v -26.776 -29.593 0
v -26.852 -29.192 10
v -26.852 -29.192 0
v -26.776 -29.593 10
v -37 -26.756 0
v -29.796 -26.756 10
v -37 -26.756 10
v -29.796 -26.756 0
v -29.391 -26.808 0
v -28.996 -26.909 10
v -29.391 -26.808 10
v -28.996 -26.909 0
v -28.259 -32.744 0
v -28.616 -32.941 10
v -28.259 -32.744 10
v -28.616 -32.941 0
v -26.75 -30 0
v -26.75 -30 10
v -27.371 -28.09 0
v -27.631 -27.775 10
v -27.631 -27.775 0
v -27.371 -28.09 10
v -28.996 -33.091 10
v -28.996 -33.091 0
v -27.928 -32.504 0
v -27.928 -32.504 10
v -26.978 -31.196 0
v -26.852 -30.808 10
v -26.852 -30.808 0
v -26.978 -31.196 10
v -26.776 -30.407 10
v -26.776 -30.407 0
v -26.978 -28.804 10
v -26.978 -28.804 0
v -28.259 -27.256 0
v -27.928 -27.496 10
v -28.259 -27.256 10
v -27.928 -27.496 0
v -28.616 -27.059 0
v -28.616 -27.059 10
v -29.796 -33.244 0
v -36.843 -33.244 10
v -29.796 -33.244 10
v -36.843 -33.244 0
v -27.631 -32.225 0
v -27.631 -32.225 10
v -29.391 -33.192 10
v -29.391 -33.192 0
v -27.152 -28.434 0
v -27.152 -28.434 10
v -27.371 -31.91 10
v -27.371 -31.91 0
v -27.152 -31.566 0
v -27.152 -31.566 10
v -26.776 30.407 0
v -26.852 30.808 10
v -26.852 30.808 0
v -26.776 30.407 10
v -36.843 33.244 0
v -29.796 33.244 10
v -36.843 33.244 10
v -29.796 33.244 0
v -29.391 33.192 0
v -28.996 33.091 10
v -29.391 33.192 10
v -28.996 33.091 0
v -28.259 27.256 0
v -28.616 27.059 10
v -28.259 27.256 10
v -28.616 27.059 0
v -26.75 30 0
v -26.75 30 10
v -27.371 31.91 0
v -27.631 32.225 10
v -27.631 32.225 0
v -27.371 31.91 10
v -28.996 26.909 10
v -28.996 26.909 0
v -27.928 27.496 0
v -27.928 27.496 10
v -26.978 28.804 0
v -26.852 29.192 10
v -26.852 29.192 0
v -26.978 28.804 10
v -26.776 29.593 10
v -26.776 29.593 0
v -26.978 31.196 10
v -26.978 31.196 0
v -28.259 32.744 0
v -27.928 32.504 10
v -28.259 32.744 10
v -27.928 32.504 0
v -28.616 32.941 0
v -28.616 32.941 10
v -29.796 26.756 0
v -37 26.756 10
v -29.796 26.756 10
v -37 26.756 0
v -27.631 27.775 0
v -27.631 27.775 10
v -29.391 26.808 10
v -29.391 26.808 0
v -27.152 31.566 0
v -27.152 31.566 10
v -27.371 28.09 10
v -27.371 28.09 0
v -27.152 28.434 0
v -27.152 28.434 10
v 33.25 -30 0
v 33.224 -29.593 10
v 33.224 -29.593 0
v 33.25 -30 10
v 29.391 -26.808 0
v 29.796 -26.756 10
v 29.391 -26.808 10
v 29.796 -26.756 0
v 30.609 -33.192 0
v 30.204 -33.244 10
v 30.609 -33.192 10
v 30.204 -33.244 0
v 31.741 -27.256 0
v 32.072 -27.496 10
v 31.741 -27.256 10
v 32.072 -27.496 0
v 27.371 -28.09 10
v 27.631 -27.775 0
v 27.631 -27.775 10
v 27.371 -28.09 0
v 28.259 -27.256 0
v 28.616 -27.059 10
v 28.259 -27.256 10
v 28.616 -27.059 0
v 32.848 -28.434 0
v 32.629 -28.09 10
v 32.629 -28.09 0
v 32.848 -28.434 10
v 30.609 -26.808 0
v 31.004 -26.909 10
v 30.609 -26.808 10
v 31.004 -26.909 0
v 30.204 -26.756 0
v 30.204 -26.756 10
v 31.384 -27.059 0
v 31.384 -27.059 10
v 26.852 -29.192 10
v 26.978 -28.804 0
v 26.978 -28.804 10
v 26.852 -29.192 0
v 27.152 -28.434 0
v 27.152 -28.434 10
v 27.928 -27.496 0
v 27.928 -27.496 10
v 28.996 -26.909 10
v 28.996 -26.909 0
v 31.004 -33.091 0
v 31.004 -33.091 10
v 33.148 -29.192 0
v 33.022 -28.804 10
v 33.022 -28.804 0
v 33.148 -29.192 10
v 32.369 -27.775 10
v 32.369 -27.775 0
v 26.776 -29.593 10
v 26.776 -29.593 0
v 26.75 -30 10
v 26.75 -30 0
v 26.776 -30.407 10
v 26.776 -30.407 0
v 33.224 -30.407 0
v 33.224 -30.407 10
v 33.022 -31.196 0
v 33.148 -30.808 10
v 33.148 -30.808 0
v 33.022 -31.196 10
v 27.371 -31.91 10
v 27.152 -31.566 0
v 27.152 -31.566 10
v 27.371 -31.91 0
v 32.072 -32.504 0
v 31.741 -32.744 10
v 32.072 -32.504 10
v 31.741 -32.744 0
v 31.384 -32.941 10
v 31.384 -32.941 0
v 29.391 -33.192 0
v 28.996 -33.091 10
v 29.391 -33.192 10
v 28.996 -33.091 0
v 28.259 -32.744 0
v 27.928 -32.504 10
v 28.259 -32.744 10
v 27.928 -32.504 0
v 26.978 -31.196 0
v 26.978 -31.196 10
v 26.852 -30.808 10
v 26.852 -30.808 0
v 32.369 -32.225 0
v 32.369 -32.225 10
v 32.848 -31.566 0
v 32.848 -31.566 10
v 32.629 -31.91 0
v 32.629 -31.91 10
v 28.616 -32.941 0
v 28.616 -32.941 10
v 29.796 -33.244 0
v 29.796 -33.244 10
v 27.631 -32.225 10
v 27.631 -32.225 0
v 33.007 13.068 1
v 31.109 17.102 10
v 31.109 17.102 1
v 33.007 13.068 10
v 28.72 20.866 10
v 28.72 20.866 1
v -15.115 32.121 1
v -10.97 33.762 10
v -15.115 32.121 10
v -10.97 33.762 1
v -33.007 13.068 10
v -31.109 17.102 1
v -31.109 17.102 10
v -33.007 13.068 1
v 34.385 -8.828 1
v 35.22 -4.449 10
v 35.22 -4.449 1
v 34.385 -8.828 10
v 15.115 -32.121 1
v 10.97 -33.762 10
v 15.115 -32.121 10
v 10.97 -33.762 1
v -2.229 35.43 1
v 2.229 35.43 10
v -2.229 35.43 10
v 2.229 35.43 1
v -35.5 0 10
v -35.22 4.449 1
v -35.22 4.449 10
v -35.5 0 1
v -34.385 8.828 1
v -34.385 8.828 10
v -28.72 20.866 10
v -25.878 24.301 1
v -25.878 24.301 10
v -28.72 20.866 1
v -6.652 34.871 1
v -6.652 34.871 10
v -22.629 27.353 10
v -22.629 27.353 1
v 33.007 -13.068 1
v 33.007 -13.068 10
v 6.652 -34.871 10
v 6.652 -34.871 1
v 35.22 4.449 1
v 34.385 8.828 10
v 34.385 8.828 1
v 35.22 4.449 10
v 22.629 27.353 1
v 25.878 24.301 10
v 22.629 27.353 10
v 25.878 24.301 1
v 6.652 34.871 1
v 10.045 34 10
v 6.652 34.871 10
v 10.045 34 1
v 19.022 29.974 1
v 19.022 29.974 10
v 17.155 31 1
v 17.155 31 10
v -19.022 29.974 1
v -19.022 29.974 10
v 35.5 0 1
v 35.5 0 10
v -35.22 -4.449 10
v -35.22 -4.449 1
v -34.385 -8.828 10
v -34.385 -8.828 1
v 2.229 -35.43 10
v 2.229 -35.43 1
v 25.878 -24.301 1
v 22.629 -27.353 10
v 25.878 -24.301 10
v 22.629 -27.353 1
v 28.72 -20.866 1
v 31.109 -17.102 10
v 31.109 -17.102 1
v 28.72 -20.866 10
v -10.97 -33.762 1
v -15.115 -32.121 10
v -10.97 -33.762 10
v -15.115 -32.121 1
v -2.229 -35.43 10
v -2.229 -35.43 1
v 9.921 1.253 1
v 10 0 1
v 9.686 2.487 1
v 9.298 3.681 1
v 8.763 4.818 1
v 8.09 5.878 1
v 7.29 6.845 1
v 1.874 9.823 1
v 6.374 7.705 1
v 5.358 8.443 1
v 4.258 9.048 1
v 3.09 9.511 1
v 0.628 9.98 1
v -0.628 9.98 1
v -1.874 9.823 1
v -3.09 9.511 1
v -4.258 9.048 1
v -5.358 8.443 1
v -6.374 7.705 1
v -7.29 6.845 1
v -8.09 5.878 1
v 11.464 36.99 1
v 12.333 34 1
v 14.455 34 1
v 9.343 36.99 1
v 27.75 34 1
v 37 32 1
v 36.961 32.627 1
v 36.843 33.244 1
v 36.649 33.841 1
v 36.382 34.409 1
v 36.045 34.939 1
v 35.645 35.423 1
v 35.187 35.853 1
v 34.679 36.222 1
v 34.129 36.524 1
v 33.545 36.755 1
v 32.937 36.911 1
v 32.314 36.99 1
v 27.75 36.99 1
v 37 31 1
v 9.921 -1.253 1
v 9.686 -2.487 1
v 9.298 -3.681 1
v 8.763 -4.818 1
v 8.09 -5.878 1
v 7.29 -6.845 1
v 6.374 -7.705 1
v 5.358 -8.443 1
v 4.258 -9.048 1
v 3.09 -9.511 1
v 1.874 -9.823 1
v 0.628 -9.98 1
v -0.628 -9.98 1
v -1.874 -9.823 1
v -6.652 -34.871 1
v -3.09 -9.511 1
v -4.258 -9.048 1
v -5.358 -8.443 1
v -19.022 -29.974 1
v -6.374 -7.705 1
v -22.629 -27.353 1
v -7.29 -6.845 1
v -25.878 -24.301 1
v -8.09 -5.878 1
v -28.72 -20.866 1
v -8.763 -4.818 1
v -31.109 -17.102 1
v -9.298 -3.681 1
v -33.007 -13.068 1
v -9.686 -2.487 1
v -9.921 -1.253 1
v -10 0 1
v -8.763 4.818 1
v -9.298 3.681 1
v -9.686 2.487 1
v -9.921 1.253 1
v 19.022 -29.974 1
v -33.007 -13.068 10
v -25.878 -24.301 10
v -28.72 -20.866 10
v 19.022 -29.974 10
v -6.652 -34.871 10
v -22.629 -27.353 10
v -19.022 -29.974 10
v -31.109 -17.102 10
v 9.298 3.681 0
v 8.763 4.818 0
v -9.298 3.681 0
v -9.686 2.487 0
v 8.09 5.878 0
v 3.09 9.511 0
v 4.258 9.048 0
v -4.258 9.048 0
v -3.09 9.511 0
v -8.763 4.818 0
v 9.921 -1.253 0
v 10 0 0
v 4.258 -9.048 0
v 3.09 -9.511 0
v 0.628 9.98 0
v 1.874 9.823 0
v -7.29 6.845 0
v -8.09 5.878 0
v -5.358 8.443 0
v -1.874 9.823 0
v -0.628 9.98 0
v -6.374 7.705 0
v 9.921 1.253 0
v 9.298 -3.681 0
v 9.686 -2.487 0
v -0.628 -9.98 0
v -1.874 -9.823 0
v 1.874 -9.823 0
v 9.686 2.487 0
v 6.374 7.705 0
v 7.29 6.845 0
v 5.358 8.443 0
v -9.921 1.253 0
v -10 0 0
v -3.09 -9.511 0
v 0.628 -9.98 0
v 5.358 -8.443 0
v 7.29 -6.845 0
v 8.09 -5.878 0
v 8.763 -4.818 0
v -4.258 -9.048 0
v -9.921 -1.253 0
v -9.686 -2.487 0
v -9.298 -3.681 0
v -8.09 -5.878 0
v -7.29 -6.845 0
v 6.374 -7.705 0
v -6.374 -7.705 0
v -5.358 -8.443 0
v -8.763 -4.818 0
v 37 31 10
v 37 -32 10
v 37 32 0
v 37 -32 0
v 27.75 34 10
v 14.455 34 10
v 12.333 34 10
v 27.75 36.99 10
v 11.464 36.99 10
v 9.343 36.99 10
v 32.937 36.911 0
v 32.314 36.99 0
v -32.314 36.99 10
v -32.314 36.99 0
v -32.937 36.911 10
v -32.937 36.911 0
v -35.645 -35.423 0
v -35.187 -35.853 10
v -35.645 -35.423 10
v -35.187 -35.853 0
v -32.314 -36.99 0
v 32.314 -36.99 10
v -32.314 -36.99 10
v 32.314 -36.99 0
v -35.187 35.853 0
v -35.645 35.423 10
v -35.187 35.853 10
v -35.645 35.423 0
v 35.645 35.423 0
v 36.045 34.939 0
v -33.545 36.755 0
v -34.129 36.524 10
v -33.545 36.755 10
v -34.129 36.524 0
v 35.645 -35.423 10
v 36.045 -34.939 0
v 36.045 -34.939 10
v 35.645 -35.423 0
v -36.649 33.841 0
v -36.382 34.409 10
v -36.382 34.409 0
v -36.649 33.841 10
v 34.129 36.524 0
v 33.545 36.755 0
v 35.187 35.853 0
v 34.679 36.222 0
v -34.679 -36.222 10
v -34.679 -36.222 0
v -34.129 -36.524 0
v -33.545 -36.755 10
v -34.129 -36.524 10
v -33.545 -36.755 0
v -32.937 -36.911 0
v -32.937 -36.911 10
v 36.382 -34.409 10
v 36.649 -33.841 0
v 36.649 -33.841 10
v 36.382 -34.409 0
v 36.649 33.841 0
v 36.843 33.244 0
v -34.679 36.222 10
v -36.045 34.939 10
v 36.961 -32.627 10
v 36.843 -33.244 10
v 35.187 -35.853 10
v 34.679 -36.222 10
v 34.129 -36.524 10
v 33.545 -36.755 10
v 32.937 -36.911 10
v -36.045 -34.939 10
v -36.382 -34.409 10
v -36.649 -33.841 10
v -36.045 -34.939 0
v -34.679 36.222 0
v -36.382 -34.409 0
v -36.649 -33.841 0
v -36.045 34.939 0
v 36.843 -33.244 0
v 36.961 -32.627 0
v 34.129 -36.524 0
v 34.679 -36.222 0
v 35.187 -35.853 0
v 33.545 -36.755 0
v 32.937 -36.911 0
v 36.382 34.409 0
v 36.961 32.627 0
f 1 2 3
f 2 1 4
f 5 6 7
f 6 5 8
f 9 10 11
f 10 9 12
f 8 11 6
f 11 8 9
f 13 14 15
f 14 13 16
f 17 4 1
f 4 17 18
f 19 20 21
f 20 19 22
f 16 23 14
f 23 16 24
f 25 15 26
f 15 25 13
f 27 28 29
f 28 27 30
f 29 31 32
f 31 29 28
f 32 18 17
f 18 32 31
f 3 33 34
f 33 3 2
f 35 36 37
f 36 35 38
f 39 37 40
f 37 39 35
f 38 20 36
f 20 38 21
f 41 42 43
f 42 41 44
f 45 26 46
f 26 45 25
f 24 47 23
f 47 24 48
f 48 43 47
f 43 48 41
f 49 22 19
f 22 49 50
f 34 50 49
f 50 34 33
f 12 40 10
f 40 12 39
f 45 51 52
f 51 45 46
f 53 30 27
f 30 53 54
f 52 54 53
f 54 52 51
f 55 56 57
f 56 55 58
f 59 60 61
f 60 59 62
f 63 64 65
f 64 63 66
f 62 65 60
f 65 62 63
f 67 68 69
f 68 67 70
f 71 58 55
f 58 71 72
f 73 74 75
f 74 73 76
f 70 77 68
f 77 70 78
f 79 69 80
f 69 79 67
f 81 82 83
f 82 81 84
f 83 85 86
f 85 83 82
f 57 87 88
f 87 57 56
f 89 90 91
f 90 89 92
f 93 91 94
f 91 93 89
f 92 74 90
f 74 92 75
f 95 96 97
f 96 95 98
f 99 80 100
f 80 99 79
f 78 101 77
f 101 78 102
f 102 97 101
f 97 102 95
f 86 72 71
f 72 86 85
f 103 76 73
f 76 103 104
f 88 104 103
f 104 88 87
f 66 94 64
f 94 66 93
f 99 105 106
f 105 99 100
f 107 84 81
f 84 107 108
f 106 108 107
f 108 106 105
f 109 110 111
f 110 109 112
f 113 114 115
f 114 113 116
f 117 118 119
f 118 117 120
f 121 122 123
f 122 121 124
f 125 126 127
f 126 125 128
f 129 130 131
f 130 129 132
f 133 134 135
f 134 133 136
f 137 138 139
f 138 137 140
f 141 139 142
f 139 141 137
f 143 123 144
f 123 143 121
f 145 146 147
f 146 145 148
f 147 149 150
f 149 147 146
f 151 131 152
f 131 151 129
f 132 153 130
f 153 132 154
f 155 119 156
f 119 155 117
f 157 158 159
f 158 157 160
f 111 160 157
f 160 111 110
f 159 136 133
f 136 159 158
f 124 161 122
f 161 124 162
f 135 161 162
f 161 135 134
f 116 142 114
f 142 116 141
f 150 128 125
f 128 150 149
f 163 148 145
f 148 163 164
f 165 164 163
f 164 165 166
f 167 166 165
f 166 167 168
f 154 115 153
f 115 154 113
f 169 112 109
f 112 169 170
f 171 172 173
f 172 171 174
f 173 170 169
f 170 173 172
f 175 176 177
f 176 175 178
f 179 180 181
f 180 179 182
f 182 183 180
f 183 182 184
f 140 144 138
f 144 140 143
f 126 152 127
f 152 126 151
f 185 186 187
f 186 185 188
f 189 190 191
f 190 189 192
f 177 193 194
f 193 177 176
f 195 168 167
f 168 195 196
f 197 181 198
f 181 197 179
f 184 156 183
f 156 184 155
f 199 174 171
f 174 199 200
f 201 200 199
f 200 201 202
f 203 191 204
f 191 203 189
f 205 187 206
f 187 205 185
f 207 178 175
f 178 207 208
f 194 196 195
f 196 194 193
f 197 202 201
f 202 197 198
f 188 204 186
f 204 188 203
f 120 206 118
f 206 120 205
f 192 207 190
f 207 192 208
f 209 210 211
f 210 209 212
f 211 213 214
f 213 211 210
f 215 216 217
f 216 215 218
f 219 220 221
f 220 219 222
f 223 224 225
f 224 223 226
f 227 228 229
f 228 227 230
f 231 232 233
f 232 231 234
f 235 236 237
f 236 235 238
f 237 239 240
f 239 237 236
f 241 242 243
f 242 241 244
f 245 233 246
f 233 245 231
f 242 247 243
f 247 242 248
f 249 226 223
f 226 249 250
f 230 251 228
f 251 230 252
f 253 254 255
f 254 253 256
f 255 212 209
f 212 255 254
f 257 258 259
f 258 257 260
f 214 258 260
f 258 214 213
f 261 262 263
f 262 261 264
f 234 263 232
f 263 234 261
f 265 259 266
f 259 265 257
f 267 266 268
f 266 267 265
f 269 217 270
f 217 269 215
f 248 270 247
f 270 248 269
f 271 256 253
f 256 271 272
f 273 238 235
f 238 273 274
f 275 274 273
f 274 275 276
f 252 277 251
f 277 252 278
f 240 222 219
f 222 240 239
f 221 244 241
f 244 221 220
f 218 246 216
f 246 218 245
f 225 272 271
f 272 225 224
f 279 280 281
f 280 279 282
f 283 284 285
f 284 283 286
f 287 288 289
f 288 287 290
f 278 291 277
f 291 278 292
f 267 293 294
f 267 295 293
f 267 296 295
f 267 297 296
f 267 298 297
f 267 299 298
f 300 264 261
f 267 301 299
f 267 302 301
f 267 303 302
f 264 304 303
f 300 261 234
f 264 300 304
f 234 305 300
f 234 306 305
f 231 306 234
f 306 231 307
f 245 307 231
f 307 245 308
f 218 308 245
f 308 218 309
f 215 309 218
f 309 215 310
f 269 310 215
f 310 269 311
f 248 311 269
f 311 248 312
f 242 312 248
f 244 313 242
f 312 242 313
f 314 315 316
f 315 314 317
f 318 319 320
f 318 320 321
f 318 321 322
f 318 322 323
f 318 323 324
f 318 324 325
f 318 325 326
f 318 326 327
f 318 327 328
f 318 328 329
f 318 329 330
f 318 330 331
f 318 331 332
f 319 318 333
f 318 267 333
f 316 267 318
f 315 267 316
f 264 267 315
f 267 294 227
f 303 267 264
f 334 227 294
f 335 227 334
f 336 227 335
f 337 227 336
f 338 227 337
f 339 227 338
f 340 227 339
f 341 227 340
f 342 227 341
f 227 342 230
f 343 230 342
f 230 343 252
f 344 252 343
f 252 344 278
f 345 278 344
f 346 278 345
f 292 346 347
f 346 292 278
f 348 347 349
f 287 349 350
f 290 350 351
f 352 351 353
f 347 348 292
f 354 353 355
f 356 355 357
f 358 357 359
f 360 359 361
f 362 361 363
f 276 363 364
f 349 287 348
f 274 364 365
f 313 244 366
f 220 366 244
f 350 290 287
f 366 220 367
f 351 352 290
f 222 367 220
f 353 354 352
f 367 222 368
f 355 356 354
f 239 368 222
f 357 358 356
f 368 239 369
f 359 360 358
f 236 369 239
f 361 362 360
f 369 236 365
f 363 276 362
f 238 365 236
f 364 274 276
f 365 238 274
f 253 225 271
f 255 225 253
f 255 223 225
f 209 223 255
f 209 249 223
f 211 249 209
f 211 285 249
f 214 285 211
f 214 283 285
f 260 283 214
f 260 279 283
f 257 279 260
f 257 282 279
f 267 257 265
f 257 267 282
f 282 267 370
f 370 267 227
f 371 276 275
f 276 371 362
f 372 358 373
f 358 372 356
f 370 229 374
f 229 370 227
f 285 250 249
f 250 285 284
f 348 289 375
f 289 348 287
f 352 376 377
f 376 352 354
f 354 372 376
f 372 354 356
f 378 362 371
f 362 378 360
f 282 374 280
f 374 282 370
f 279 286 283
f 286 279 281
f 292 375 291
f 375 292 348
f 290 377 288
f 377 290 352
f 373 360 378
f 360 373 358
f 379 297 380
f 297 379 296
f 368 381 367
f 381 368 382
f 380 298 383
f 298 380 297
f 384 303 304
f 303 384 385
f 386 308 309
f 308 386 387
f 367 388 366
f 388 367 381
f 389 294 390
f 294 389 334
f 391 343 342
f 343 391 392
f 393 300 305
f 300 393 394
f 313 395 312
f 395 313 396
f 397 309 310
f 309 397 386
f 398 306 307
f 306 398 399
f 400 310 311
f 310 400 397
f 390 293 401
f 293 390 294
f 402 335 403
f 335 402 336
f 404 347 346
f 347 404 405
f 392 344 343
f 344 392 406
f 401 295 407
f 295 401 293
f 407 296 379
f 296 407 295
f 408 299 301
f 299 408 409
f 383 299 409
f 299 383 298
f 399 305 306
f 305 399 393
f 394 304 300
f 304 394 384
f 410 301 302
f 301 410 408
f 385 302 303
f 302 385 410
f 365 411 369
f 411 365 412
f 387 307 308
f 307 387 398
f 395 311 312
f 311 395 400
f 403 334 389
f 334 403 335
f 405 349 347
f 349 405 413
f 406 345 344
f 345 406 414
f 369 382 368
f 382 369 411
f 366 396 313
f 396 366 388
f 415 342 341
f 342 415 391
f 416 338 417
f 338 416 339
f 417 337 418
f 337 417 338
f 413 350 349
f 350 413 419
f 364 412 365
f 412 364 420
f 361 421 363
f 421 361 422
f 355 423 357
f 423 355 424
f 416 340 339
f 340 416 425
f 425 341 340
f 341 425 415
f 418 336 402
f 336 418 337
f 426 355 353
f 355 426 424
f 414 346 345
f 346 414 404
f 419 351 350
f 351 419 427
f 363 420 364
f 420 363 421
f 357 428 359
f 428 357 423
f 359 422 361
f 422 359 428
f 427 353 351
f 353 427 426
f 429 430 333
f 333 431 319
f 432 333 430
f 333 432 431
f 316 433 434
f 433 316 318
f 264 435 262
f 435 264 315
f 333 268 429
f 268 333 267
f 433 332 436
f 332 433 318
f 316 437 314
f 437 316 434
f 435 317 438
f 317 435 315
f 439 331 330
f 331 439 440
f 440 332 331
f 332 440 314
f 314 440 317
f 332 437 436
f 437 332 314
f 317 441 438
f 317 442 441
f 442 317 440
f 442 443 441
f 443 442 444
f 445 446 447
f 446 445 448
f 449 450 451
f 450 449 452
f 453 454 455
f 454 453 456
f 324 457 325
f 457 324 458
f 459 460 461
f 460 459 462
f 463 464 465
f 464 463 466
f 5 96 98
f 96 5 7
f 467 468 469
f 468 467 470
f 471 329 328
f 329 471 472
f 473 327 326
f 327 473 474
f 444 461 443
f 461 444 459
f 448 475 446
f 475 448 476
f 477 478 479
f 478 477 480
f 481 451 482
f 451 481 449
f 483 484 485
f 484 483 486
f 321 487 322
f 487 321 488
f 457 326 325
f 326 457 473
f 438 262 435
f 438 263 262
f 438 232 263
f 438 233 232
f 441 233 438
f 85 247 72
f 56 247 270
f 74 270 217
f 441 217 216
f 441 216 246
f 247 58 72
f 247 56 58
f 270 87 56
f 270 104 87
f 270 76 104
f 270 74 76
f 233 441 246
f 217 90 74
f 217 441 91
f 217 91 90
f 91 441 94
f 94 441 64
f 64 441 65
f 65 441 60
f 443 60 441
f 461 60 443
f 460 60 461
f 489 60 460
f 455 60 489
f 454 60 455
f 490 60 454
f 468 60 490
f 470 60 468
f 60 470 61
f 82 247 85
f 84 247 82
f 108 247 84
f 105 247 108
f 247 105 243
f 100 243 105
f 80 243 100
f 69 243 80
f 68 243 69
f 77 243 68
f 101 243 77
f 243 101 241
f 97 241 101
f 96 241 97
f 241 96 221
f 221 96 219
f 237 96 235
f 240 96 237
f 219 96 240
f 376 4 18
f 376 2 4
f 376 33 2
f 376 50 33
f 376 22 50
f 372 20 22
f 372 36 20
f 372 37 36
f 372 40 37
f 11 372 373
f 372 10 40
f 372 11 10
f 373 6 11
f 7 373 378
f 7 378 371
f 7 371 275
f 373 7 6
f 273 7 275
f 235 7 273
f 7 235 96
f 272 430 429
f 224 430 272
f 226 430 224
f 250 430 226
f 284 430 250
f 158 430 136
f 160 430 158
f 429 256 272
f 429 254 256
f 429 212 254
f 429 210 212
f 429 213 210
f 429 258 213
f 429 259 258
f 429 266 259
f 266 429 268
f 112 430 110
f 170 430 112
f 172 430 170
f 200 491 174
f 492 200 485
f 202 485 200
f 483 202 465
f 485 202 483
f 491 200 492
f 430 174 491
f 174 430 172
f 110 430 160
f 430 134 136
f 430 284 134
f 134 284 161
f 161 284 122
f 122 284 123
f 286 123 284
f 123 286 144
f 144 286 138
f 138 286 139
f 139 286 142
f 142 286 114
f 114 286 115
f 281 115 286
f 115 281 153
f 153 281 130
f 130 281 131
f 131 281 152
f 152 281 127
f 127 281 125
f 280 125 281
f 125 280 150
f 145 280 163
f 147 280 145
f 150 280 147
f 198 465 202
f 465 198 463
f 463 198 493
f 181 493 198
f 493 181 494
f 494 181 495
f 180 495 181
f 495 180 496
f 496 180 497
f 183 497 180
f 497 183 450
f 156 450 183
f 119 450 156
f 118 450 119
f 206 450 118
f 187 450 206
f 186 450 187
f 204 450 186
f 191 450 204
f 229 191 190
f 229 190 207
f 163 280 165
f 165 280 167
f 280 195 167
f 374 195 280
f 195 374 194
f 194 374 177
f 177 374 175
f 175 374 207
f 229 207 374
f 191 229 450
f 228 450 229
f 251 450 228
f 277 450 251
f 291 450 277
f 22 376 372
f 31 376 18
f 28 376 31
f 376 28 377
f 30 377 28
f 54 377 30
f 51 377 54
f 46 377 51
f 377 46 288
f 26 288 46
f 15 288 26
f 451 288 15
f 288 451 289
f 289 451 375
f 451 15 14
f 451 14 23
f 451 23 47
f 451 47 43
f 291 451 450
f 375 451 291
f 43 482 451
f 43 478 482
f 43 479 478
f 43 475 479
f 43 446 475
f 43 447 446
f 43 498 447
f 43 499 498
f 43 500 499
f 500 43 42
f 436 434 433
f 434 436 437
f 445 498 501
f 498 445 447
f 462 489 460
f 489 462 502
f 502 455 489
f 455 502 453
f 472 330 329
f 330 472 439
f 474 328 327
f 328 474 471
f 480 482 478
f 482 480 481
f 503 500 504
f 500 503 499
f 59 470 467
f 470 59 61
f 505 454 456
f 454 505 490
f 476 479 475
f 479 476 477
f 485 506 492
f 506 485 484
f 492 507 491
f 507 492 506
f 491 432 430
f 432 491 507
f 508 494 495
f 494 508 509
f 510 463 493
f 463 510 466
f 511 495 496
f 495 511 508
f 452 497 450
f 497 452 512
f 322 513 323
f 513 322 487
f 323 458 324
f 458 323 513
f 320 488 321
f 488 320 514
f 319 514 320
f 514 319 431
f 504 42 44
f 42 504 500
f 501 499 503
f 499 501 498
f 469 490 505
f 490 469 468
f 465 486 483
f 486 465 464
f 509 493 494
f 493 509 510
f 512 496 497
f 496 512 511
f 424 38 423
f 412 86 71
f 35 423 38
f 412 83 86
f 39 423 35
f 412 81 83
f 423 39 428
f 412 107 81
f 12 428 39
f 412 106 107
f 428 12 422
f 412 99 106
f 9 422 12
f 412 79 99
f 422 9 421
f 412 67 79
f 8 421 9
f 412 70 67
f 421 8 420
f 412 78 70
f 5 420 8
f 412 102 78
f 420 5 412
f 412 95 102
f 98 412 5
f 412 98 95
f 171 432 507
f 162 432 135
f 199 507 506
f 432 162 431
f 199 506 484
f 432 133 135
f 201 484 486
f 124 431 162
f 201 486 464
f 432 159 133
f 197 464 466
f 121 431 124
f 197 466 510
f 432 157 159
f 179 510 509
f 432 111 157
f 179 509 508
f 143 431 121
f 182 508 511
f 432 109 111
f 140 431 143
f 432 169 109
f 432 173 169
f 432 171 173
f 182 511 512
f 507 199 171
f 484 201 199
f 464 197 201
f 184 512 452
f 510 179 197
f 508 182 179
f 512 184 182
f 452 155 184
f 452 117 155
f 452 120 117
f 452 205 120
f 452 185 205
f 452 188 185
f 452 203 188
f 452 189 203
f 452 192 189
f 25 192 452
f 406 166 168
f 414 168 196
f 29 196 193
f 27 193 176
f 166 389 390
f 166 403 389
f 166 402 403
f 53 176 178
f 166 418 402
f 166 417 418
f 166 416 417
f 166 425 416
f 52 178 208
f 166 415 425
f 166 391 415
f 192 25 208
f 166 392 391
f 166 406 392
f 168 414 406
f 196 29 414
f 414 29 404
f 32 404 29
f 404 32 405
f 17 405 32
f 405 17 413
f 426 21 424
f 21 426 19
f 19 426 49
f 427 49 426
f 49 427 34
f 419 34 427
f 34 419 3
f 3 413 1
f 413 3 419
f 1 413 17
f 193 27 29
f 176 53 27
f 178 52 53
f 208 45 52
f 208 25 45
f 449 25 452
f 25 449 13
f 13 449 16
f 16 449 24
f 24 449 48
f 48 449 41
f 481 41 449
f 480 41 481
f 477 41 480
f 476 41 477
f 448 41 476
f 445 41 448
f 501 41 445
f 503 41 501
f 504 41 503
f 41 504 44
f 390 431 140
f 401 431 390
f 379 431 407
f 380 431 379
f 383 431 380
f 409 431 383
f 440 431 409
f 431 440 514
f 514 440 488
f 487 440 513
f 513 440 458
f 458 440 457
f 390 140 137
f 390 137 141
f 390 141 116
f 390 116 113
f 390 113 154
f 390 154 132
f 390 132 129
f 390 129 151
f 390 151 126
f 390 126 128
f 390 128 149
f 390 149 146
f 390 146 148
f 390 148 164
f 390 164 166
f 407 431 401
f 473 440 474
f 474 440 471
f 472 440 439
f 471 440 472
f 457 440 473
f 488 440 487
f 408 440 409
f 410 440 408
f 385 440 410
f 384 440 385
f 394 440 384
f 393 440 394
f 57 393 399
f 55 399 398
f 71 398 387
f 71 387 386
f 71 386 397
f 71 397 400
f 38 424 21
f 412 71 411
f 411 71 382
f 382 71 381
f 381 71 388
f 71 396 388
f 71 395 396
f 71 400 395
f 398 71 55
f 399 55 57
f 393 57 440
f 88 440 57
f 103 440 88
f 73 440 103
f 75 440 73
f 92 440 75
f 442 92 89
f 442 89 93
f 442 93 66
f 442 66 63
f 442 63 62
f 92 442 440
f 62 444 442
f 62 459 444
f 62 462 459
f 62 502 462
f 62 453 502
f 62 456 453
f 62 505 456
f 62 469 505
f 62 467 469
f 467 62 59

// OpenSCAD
$fn = 50;


difference() {
	union() {
		translate(v = [0, 0, 0]) {
			rotate(a = [0, 0, 0]) {
				hull() {
					translate(v = [-32.0000000000, 32.0000000000, 0]) {
						rotate(a = [0, 0, 0]) {
							translate(v = [0, 0, 0]) {
								rotate(a = [0, 0, 0]) {
									cylinder(h = 10, r = 5);
								}
							}
						}
					}
					translate(v = [32.0000000000, 32.0000000000, 0]) {
						rotate(a = [0, 0, 0]) {
							translate(v = [0, 0, 0]) {
								rotate(a = [0, 0, 0]) {
									cylinder(h = 10, r = 5);
								}
							}
						}
					}
					translate(v = [-32.0000000000, -32.0000000000, 0]) {
						rotate(a = [0, 0, 0]) {
							translate(v = [0, 0, 0]) {
								rotate(a = [0, 0, 0]) {
									cylinder(h = 10, r = 5);
								}
							}
						}
					}
					translate(v = [32.0000000000, -32.0000000000, 0]) {
						rotate(a = [0, 0, 0]) {
							translate(v = [0, 0, 0]) {
								rotate(a = [0, 0, 0]) {
									cylinder(h = 10, r = 5);
								}
							}
						}
					}
				}
			}
		}
	}
	union() {
		translate(v = [-37.5000000000, -30.0000000000, -125]) {
			rotate(a = [0, 0, 0]) {
				hull() {
					translate(v = [7.5000000000, 0, 0]) {
						rotate(a = [0, 0, 0]) {
							translate(v = [0, 0, 0]) {
								rotate(a = [0, 0, 0]) {
									cylinder(h = 250, r = 3.2500000000);
								}
							}
						}
					}
					translate(v = [-7.5000000000, 0, 0]) {
						rotate(a = [0, 0, 0]) {
							translate(v = [0, 0, 0]) {
								rotate(a = [0, 0, 0]) {
									cylinder(h = 250, r = 3.2500000000);
								}
							}
						}
					}
				}
			}
		}
		translate(v = [-37.5000000000, 30.0000000000, -125]) {
			rotate(a = [0, 0, 0]) {
				hull() {
					translate(v = [7.5000000000, 0, 0]) {
						rotate(a = [0, 0, 0]) {
							translate(v = [0, 0, 0]) {
								rotate(a = [0, 0, 0]) {
									cylinder(h = 250, r = 3.2500000000);
								}
							}
						}
					}
					translate(v = [-7.5000000000, 0, 0]) {
						rotate(a = [0, 0, 0]) {
							translate(v = [0, 0, 0]) {
								rotate(a = [0, 0, 0]) {
									cylinder(h = 250, r = 3.2500000000);
								}
							}
						}
					}
				}
			}
		}
		translate(v = [30.0000000000, -30.0000000000, -125.0000000000]) {
			rotate(a = [0, 0, 0]) {
				cylinder(h = 250, r = 3.2500000000);
			}
		}
		translate(v = [0, 0, 1.0000000000]) {
			rotate(a = [0, 0, 0]) {
				cylinder(h = 12, r = 35.5000000000);
			}
		}
		translate(v = [0, 0, -5.0000000000]) {
			rotate(a = [0, 0, 0]) {
				cylinder(h = 10, r = 10.0000000000);
			}
		}
		translate(v = [0.0000000000, 31.0000000000, 1]) {
			rotate(a = [0, 0, 0]) {
				cube(size = [37.0000000000, 3, 12]);
			}
		}
		translate(v = [27.7500000000, 31.0000000000, 1]) {
			rotate(a = [0, 0, 0]) {
				cube(size = [9.2500000000, 6, 12]);
			}
		}
		translate(v = [8.5833333333, 37.7500000000, 1]) {
			rotate(a = [0, 0, -45]) {
				cube(size = [7.5000000000, 1.5000000000, 12]);
			}
		}
	}
}
